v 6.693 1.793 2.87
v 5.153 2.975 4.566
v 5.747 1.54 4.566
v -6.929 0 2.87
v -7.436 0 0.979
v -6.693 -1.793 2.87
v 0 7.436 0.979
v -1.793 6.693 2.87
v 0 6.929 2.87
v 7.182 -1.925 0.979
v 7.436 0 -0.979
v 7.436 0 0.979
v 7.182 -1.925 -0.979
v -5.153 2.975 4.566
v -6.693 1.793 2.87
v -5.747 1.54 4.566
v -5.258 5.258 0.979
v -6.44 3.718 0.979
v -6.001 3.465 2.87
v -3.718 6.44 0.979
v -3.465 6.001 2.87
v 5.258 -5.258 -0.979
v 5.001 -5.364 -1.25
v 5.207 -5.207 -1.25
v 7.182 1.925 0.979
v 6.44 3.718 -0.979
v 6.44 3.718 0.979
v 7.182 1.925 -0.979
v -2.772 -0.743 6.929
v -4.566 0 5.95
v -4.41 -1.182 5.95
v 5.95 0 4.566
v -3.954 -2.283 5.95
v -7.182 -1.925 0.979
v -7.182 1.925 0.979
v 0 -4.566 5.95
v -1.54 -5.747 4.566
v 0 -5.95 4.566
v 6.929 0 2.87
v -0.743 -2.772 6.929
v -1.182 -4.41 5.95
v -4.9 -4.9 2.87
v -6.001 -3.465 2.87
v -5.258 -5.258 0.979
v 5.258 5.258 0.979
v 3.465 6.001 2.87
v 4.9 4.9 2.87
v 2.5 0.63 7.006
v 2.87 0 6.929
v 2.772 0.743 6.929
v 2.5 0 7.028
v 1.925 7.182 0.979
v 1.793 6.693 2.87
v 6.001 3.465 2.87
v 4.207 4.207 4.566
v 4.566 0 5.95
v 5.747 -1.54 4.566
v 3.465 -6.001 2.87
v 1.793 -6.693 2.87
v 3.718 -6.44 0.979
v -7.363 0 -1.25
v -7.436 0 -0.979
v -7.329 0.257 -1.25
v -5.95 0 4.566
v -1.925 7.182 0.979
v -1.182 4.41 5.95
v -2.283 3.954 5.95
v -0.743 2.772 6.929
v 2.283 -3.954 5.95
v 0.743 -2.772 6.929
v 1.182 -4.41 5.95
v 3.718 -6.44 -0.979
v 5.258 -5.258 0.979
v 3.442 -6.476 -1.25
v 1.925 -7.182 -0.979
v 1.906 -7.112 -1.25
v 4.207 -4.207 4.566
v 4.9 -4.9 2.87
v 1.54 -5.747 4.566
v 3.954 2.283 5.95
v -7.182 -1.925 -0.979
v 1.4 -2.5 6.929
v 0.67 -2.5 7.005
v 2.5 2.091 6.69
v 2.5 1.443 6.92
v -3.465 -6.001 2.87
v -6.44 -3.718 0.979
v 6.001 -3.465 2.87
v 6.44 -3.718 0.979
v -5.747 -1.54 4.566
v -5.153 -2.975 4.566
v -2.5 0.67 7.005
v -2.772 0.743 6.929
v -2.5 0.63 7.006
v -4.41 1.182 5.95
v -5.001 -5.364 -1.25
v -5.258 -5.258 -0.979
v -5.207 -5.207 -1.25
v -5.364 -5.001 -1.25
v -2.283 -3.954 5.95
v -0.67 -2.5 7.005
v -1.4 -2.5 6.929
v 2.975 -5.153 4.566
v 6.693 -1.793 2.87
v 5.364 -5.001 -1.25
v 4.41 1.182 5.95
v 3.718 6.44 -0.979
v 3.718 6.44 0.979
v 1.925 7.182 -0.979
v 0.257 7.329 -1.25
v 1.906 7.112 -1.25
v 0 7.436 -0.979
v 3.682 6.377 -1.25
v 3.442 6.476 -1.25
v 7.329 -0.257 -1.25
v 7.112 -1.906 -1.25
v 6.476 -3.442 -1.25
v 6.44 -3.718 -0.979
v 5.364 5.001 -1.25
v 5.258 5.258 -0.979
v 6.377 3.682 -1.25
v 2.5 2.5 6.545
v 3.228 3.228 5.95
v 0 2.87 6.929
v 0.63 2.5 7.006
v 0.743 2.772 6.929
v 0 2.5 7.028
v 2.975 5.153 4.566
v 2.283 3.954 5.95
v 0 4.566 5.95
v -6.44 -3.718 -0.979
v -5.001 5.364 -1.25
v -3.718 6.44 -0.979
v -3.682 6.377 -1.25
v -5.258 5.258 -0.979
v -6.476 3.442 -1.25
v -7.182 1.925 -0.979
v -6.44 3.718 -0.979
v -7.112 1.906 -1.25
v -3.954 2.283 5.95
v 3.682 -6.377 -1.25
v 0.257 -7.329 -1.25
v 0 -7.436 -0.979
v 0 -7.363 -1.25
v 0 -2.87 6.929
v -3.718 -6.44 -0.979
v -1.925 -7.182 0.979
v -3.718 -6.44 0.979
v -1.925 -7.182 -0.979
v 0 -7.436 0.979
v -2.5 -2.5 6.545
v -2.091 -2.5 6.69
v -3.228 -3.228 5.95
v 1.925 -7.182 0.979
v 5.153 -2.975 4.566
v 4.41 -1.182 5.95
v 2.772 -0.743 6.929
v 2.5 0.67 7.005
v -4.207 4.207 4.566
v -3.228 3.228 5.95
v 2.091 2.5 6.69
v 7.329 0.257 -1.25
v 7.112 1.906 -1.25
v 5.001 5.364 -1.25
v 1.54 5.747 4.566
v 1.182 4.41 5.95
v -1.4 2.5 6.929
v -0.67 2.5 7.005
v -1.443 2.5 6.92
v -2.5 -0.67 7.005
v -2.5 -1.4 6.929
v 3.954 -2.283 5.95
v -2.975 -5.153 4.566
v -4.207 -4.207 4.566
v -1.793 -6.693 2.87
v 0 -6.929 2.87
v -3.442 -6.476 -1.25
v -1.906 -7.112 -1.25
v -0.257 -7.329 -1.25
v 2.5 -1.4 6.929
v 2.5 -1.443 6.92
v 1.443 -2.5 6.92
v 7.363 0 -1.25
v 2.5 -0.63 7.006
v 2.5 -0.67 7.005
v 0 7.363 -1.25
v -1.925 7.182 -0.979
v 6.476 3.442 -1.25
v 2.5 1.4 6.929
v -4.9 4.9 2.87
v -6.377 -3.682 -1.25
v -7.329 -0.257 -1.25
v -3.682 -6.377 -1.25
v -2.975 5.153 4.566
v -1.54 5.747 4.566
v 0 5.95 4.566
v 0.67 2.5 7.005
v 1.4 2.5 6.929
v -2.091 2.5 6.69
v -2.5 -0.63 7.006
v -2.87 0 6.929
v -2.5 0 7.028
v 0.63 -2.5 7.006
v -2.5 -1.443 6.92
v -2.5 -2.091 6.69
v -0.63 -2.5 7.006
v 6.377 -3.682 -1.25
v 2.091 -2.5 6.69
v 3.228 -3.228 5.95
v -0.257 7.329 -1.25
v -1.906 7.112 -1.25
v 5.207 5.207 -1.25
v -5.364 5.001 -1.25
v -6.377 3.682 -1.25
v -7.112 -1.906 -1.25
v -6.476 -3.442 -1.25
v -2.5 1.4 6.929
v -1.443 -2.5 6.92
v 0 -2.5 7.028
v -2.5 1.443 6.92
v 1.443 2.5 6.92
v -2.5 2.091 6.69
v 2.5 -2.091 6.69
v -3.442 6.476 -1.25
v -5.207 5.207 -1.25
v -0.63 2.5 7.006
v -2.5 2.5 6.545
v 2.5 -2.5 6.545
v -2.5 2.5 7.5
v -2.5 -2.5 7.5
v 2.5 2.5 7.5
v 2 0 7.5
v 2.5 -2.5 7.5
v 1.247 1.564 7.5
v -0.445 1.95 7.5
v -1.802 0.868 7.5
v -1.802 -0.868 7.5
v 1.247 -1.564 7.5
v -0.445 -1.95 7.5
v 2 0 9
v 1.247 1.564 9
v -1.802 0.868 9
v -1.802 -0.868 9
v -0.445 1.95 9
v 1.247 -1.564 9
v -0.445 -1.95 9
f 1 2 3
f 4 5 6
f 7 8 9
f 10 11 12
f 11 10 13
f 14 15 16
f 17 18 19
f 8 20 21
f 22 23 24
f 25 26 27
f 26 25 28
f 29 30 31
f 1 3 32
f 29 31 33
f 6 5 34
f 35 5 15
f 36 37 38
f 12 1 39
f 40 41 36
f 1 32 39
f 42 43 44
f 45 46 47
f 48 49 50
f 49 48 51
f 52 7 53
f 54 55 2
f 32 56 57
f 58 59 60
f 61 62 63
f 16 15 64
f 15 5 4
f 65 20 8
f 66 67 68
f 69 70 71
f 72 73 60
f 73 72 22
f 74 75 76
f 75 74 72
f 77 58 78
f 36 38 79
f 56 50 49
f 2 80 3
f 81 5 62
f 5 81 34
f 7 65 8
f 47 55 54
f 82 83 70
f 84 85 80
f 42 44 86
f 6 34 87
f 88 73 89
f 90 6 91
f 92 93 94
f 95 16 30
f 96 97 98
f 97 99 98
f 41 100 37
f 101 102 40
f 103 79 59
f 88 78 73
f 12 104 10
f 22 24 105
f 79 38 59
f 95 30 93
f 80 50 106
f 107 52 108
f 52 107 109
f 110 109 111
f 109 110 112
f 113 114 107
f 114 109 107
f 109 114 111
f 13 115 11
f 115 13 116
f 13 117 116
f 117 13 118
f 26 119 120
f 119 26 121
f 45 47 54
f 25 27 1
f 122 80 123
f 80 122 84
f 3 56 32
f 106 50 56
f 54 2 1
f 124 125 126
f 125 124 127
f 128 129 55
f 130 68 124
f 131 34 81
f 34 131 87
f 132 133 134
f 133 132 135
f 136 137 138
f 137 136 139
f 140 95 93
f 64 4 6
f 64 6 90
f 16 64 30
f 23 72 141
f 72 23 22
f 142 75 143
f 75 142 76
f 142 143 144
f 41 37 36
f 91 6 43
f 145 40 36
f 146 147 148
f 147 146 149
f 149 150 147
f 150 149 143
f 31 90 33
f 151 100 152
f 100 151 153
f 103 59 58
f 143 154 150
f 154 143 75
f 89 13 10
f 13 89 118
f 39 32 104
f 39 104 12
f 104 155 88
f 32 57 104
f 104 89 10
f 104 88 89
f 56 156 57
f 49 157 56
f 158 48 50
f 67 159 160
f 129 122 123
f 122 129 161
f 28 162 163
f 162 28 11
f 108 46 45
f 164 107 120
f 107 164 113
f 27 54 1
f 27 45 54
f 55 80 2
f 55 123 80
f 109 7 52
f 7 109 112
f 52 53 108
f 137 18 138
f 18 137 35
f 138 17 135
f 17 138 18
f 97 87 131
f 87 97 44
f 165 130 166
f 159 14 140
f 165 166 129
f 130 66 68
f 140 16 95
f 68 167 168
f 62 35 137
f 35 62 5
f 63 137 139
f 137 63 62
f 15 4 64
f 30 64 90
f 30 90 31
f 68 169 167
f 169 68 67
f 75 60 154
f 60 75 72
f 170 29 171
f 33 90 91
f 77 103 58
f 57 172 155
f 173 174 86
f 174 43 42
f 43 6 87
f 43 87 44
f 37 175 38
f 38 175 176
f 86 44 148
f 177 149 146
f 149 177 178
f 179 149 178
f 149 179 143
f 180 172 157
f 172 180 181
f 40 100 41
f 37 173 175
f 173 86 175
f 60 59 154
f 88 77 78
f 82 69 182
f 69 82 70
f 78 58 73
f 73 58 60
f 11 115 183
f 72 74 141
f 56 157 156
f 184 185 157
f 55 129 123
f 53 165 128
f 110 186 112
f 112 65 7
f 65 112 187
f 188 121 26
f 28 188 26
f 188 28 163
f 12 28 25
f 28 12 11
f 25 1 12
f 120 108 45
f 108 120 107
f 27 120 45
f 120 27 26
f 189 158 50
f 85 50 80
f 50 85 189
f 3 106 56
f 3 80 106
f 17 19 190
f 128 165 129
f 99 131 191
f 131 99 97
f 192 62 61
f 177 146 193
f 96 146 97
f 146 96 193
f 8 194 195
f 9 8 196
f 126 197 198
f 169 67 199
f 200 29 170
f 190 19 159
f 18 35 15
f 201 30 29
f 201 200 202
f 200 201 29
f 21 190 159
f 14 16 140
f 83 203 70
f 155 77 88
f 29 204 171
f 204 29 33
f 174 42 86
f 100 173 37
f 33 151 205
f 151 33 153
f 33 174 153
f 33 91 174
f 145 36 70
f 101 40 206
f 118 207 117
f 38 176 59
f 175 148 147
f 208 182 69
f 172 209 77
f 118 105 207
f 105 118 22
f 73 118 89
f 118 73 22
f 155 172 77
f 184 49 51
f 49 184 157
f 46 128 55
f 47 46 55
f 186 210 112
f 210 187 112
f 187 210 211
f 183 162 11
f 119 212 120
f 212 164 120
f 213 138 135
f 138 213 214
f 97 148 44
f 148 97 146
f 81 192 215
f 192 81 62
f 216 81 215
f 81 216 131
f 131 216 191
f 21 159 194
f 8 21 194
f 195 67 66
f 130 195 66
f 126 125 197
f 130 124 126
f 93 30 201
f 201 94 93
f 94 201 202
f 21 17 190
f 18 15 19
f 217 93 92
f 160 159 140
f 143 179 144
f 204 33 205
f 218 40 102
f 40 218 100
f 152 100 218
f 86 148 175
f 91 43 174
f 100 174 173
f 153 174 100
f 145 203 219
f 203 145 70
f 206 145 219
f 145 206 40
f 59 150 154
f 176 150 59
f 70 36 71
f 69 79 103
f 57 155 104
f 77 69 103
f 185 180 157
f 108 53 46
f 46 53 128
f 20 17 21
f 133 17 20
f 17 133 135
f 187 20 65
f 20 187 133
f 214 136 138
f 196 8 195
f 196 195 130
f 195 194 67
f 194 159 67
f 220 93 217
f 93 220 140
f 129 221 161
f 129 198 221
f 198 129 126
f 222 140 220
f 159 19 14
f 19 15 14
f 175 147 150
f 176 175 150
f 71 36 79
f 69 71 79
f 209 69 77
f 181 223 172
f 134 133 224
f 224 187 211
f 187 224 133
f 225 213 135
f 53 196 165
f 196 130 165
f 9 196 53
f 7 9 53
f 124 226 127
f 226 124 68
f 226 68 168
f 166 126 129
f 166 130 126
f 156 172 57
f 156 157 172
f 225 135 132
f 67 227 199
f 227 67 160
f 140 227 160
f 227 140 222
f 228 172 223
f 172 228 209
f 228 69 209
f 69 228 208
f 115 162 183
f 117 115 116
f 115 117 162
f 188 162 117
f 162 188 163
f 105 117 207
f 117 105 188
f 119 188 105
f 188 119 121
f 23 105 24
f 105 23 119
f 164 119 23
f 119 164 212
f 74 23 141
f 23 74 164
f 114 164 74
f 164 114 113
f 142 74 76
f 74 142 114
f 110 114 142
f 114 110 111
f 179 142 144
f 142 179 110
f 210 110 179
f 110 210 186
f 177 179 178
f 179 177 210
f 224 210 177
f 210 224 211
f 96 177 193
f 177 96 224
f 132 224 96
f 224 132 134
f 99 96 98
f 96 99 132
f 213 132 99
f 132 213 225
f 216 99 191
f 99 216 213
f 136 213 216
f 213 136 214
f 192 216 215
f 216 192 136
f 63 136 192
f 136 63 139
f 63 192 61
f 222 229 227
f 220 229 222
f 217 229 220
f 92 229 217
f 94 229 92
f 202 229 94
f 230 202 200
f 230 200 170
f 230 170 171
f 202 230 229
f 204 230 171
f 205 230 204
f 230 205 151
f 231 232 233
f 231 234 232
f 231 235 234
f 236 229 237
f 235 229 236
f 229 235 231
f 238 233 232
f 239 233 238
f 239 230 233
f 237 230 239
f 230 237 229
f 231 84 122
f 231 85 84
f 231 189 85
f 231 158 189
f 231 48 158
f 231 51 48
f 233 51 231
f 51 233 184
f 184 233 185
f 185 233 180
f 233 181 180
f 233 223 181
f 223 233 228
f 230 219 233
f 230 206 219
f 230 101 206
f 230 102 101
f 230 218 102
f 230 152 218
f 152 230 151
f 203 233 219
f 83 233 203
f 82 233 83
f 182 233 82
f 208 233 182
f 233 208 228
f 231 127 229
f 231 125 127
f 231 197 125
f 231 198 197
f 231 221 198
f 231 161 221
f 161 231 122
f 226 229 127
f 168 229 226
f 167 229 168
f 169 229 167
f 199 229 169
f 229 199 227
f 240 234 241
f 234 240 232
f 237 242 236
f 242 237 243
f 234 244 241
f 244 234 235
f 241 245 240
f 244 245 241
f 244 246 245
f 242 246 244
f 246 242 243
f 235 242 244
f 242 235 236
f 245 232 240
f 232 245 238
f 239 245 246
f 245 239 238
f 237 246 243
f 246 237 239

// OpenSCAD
union() {
  base();
  top();
}


module base() {
  difference() {
    sphere(r=7.5);
    translate([0, 0, -5]) cube([15,15,7.5], center=true);
  }
}

module top() {
  translate([0,0,7]) cube([5, 5, 1], center=true);
  translate([0,0,8]) cylinder(r1=2, r2=2, h=2, center=true);
}
